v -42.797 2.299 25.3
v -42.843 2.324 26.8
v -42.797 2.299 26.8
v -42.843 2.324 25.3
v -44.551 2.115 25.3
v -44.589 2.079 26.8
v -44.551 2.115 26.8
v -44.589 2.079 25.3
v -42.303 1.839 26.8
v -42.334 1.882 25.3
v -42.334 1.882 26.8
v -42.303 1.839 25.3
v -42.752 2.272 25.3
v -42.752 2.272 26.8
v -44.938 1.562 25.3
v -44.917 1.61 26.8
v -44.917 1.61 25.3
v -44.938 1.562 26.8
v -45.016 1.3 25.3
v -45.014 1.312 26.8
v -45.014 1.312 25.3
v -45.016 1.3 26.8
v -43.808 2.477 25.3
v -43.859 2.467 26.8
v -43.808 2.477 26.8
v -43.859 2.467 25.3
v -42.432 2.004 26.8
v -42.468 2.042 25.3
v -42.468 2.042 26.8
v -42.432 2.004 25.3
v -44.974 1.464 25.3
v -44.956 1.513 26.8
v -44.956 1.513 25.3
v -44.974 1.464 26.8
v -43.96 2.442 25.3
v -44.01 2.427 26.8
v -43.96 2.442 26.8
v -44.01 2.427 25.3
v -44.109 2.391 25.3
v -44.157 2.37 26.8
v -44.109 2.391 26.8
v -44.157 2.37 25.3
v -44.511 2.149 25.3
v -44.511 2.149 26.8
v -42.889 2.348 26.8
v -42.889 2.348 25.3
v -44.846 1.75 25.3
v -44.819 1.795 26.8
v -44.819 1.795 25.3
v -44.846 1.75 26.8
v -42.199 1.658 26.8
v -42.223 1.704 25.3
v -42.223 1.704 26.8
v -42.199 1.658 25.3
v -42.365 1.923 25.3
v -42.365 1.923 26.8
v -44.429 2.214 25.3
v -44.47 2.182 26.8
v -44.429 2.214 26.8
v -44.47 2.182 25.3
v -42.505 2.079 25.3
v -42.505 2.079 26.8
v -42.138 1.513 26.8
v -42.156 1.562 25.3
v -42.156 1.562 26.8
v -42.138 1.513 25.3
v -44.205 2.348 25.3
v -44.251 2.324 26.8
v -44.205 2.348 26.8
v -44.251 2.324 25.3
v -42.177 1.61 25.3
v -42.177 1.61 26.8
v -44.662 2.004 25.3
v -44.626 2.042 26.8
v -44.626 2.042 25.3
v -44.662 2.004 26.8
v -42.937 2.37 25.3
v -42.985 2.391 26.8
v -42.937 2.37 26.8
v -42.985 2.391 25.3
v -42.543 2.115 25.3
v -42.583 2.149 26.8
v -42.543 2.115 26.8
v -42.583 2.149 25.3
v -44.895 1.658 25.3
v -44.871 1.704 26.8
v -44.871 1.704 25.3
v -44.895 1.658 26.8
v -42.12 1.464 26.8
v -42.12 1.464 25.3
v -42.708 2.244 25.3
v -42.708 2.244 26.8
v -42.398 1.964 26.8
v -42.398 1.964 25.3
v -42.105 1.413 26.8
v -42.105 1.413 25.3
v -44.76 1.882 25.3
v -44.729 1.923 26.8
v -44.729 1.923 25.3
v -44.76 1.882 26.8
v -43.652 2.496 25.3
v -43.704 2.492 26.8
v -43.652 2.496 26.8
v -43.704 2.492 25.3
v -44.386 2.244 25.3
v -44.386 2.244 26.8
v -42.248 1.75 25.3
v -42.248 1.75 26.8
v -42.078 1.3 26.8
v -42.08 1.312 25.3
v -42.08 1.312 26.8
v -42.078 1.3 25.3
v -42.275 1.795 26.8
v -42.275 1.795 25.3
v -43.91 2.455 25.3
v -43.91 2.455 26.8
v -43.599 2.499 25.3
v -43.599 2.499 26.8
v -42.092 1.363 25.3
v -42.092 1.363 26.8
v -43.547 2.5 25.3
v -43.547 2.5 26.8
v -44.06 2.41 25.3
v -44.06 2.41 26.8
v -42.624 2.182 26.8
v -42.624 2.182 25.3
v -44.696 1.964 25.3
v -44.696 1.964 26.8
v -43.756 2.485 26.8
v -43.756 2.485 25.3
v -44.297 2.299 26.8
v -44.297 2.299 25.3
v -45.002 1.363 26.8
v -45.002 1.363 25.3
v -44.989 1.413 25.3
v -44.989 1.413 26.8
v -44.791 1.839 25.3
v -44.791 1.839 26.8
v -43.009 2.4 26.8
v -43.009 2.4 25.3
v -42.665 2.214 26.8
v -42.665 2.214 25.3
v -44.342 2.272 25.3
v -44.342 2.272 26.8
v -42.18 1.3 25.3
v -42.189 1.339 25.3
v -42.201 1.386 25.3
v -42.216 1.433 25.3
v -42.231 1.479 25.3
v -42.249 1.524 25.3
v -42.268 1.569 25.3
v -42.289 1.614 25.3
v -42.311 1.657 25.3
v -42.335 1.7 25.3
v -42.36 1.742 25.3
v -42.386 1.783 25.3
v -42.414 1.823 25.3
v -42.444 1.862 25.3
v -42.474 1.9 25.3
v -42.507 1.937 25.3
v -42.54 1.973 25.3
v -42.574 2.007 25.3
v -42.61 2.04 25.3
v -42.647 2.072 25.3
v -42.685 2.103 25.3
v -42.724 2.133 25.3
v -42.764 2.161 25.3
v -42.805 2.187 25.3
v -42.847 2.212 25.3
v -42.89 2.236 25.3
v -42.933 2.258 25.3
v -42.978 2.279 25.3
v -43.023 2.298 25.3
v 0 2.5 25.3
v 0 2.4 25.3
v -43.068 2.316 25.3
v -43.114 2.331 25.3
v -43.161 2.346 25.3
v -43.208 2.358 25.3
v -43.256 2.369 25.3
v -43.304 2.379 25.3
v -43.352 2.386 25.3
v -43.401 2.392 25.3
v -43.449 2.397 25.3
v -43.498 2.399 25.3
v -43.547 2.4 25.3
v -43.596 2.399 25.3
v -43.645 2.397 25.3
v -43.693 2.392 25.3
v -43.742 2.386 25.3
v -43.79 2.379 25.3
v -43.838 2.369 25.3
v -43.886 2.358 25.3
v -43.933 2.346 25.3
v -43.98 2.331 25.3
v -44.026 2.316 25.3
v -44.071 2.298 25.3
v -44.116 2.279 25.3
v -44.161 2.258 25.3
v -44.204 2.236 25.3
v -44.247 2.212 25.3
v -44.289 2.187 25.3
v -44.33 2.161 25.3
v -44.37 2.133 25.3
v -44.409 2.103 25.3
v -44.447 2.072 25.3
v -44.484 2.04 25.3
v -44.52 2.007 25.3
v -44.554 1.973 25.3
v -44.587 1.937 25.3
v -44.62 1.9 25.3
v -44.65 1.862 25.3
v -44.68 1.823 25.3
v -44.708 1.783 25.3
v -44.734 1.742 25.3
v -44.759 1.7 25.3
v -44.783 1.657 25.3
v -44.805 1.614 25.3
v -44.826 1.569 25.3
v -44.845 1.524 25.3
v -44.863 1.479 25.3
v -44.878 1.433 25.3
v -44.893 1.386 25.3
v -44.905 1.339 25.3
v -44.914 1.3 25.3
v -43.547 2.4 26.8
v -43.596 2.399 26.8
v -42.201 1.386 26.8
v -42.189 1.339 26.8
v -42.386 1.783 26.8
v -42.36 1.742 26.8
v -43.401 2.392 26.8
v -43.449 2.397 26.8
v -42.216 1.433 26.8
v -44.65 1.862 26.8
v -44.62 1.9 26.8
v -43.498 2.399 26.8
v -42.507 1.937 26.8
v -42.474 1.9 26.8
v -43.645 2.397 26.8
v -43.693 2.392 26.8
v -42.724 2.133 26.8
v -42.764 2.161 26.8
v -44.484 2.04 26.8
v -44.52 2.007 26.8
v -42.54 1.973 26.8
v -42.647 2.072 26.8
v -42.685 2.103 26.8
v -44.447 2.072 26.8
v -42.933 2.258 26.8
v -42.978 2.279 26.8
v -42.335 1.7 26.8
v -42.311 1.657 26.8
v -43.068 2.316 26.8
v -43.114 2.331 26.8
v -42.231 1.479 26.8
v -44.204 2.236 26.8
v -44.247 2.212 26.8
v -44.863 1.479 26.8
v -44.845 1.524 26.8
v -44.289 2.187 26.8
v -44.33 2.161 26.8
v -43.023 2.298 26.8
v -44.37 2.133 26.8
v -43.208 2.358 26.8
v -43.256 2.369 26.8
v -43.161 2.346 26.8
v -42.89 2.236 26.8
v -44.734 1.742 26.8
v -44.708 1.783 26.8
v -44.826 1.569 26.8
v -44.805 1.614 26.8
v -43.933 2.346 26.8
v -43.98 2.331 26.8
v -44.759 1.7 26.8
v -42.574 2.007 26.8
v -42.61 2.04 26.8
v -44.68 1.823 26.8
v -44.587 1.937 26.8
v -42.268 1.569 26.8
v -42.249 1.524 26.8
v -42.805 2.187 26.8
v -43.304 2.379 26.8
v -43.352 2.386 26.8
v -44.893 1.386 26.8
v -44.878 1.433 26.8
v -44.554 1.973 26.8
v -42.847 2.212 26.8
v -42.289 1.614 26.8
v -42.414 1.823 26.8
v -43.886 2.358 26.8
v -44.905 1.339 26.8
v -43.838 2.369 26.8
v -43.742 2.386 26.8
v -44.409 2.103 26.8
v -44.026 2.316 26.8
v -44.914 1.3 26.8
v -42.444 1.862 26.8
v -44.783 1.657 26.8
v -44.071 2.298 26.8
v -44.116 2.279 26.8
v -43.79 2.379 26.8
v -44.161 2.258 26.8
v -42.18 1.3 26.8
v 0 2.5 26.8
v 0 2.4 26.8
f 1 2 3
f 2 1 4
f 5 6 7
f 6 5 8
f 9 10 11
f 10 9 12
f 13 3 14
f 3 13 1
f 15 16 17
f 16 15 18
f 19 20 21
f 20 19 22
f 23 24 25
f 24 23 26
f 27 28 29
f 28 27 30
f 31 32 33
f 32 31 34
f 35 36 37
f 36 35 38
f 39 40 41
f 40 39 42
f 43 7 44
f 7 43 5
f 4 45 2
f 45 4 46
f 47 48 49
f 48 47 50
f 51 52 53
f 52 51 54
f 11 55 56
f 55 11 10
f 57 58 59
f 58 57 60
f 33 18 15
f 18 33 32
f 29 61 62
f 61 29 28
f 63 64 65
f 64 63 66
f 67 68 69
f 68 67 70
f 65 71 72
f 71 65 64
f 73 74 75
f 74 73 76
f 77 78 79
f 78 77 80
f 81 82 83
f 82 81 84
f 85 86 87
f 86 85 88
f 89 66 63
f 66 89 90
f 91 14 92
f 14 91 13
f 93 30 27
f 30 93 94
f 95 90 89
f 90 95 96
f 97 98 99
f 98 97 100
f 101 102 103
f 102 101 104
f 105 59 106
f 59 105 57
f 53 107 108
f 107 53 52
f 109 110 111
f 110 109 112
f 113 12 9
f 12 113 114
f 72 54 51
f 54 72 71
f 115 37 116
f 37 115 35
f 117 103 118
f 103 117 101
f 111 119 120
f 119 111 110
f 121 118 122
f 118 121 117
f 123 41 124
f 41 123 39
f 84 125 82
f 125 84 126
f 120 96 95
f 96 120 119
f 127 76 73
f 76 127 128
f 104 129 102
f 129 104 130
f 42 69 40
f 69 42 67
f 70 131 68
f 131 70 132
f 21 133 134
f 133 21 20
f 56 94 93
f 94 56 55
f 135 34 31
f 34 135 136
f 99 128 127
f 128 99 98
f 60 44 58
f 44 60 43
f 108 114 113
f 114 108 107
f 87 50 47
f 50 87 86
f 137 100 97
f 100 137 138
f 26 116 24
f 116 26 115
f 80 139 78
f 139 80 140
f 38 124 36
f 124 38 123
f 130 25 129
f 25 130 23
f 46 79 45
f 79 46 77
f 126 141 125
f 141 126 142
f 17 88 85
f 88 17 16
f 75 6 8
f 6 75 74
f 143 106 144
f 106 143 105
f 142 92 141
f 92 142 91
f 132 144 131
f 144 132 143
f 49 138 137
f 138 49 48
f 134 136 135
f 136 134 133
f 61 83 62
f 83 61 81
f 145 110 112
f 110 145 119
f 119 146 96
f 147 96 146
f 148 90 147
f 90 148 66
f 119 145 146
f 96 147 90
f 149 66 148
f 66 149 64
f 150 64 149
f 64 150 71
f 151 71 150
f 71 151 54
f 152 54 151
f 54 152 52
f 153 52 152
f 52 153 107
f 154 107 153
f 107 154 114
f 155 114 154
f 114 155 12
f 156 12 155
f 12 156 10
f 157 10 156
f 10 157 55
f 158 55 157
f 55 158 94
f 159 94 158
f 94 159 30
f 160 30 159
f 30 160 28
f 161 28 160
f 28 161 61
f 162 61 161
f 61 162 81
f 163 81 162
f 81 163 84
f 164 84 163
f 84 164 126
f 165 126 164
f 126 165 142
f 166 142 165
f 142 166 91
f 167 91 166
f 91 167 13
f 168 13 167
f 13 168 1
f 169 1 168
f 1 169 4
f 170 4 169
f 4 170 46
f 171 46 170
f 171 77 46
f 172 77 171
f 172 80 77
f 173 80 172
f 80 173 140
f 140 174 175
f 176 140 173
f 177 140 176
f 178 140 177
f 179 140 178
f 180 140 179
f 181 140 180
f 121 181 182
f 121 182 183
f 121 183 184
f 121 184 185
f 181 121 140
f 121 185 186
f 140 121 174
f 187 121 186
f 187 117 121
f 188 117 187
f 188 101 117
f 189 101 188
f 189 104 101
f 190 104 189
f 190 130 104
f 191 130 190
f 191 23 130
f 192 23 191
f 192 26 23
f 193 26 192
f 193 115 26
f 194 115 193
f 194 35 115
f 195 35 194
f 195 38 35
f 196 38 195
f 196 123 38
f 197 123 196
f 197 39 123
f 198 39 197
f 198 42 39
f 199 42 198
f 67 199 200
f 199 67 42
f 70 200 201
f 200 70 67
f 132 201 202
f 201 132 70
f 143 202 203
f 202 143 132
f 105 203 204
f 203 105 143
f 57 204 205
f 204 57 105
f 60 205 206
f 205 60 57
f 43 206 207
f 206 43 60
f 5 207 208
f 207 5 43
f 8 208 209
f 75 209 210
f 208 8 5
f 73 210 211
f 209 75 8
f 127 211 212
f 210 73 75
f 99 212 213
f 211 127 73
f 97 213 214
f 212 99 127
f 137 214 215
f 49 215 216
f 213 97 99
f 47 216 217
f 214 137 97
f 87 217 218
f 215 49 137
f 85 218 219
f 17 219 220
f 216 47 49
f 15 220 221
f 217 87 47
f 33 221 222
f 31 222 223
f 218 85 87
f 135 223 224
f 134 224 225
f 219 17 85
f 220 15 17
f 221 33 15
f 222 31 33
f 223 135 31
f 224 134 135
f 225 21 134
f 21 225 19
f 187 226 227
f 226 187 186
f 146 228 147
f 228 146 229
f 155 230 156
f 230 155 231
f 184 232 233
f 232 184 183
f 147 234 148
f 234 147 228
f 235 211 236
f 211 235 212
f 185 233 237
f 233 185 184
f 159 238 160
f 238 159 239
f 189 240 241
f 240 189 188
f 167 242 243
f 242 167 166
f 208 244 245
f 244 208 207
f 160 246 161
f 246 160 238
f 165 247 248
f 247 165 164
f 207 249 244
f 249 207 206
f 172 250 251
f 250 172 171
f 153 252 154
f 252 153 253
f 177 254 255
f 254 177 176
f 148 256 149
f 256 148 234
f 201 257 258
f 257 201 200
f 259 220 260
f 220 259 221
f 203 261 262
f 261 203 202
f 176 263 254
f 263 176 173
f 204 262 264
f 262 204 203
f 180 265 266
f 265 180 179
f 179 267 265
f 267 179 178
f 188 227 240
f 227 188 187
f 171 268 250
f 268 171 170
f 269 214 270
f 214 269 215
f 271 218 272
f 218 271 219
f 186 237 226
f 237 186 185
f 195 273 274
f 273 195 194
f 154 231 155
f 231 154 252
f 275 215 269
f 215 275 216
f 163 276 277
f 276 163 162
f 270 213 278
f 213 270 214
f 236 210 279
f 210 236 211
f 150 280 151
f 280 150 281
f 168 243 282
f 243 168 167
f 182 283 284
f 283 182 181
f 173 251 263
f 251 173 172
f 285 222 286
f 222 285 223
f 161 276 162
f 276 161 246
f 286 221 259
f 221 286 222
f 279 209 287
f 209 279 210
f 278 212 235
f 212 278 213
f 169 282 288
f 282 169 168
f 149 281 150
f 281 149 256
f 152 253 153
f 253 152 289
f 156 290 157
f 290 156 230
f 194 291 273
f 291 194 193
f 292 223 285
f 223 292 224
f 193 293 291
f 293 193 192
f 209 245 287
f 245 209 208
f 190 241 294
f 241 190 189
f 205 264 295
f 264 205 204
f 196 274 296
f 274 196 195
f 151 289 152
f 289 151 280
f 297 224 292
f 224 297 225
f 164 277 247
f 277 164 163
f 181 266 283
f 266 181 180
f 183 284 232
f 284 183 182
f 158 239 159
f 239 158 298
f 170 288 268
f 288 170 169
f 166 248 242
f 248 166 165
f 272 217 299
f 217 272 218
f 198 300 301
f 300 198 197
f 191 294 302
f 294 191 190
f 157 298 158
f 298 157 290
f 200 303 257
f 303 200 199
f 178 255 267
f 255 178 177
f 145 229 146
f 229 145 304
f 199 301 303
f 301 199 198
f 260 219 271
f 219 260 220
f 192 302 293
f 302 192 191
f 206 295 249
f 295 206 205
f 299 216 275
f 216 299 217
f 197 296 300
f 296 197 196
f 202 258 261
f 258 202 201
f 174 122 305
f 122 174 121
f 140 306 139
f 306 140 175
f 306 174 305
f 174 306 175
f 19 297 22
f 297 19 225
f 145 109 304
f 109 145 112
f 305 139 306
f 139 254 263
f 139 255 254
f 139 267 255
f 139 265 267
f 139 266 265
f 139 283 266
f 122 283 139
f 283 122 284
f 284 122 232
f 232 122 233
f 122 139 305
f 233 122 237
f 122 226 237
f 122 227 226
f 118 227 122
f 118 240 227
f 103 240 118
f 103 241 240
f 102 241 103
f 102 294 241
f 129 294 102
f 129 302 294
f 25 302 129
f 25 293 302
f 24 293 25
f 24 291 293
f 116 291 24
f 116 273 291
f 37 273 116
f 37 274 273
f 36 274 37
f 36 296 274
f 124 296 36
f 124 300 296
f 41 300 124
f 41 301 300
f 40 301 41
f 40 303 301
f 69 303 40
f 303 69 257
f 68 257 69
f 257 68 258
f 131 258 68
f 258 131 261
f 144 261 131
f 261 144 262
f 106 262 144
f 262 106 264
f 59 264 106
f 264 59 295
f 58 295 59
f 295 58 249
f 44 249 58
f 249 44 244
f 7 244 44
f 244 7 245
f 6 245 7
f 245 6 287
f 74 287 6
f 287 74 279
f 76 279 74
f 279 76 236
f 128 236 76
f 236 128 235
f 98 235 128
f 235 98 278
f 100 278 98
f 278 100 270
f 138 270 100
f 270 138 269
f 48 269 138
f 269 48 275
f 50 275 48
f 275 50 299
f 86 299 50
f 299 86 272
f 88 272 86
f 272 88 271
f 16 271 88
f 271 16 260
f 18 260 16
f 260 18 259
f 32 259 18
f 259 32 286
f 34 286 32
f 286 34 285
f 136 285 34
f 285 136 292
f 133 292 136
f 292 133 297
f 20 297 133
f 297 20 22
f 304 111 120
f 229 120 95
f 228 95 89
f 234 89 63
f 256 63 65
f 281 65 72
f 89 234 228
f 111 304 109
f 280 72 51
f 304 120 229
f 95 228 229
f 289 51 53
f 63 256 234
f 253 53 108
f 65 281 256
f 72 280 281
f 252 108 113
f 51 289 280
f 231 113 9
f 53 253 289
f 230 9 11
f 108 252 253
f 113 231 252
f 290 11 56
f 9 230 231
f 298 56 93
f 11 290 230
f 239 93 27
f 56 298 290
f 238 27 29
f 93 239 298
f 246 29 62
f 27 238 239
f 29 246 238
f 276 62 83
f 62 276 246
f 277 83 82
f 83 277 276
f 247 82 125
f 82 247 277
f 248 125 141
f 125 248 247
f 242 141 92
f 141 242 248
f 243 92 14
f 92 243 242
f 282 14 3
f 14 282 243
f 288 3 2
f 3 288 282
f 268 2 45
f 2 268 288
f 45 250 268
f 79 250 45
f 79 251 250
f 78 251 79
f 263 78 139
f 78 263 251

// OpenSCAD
$fn = 180;

wall_width = 52.33;
wall_height = 26.8;
wall_thickness = 1.;

window_x = 8.783;

valance_w = 1.5;
valance_d = 0.1;

// Rotate to stand upright
scale([1, -1, 1]) {
    translate([-wall_width, 0, 0]) {
        rotate([90, 0, 0]) {
            intersection() {
                translate([window_x, wall_height - valance_w, wall_thickness]) {

                    // rounded valance part
                    rotate([-90, 0, 0]) {
                        difference() {
                            cylinder(valance_w, valance_w, valance_w);
                            translate([0, 0, -1]) {
                                cylinder(valance_w + 2, valance_w - valance_d, valance_w - valance_d);
                            }
                        }
                    }
                    // straight valance part
                    translate([0, 0, valance_w - valance_d]) {
                        cube([wall_width - window_x, valance_w, valance_d]);
                    }
                }
                translate([0, wall_height - valance_w, wall_thickness + 0.3]) {
                    cube([wall_width, valance_w, wall_thickness * 2]);
                }
            }
        }
    }
}
